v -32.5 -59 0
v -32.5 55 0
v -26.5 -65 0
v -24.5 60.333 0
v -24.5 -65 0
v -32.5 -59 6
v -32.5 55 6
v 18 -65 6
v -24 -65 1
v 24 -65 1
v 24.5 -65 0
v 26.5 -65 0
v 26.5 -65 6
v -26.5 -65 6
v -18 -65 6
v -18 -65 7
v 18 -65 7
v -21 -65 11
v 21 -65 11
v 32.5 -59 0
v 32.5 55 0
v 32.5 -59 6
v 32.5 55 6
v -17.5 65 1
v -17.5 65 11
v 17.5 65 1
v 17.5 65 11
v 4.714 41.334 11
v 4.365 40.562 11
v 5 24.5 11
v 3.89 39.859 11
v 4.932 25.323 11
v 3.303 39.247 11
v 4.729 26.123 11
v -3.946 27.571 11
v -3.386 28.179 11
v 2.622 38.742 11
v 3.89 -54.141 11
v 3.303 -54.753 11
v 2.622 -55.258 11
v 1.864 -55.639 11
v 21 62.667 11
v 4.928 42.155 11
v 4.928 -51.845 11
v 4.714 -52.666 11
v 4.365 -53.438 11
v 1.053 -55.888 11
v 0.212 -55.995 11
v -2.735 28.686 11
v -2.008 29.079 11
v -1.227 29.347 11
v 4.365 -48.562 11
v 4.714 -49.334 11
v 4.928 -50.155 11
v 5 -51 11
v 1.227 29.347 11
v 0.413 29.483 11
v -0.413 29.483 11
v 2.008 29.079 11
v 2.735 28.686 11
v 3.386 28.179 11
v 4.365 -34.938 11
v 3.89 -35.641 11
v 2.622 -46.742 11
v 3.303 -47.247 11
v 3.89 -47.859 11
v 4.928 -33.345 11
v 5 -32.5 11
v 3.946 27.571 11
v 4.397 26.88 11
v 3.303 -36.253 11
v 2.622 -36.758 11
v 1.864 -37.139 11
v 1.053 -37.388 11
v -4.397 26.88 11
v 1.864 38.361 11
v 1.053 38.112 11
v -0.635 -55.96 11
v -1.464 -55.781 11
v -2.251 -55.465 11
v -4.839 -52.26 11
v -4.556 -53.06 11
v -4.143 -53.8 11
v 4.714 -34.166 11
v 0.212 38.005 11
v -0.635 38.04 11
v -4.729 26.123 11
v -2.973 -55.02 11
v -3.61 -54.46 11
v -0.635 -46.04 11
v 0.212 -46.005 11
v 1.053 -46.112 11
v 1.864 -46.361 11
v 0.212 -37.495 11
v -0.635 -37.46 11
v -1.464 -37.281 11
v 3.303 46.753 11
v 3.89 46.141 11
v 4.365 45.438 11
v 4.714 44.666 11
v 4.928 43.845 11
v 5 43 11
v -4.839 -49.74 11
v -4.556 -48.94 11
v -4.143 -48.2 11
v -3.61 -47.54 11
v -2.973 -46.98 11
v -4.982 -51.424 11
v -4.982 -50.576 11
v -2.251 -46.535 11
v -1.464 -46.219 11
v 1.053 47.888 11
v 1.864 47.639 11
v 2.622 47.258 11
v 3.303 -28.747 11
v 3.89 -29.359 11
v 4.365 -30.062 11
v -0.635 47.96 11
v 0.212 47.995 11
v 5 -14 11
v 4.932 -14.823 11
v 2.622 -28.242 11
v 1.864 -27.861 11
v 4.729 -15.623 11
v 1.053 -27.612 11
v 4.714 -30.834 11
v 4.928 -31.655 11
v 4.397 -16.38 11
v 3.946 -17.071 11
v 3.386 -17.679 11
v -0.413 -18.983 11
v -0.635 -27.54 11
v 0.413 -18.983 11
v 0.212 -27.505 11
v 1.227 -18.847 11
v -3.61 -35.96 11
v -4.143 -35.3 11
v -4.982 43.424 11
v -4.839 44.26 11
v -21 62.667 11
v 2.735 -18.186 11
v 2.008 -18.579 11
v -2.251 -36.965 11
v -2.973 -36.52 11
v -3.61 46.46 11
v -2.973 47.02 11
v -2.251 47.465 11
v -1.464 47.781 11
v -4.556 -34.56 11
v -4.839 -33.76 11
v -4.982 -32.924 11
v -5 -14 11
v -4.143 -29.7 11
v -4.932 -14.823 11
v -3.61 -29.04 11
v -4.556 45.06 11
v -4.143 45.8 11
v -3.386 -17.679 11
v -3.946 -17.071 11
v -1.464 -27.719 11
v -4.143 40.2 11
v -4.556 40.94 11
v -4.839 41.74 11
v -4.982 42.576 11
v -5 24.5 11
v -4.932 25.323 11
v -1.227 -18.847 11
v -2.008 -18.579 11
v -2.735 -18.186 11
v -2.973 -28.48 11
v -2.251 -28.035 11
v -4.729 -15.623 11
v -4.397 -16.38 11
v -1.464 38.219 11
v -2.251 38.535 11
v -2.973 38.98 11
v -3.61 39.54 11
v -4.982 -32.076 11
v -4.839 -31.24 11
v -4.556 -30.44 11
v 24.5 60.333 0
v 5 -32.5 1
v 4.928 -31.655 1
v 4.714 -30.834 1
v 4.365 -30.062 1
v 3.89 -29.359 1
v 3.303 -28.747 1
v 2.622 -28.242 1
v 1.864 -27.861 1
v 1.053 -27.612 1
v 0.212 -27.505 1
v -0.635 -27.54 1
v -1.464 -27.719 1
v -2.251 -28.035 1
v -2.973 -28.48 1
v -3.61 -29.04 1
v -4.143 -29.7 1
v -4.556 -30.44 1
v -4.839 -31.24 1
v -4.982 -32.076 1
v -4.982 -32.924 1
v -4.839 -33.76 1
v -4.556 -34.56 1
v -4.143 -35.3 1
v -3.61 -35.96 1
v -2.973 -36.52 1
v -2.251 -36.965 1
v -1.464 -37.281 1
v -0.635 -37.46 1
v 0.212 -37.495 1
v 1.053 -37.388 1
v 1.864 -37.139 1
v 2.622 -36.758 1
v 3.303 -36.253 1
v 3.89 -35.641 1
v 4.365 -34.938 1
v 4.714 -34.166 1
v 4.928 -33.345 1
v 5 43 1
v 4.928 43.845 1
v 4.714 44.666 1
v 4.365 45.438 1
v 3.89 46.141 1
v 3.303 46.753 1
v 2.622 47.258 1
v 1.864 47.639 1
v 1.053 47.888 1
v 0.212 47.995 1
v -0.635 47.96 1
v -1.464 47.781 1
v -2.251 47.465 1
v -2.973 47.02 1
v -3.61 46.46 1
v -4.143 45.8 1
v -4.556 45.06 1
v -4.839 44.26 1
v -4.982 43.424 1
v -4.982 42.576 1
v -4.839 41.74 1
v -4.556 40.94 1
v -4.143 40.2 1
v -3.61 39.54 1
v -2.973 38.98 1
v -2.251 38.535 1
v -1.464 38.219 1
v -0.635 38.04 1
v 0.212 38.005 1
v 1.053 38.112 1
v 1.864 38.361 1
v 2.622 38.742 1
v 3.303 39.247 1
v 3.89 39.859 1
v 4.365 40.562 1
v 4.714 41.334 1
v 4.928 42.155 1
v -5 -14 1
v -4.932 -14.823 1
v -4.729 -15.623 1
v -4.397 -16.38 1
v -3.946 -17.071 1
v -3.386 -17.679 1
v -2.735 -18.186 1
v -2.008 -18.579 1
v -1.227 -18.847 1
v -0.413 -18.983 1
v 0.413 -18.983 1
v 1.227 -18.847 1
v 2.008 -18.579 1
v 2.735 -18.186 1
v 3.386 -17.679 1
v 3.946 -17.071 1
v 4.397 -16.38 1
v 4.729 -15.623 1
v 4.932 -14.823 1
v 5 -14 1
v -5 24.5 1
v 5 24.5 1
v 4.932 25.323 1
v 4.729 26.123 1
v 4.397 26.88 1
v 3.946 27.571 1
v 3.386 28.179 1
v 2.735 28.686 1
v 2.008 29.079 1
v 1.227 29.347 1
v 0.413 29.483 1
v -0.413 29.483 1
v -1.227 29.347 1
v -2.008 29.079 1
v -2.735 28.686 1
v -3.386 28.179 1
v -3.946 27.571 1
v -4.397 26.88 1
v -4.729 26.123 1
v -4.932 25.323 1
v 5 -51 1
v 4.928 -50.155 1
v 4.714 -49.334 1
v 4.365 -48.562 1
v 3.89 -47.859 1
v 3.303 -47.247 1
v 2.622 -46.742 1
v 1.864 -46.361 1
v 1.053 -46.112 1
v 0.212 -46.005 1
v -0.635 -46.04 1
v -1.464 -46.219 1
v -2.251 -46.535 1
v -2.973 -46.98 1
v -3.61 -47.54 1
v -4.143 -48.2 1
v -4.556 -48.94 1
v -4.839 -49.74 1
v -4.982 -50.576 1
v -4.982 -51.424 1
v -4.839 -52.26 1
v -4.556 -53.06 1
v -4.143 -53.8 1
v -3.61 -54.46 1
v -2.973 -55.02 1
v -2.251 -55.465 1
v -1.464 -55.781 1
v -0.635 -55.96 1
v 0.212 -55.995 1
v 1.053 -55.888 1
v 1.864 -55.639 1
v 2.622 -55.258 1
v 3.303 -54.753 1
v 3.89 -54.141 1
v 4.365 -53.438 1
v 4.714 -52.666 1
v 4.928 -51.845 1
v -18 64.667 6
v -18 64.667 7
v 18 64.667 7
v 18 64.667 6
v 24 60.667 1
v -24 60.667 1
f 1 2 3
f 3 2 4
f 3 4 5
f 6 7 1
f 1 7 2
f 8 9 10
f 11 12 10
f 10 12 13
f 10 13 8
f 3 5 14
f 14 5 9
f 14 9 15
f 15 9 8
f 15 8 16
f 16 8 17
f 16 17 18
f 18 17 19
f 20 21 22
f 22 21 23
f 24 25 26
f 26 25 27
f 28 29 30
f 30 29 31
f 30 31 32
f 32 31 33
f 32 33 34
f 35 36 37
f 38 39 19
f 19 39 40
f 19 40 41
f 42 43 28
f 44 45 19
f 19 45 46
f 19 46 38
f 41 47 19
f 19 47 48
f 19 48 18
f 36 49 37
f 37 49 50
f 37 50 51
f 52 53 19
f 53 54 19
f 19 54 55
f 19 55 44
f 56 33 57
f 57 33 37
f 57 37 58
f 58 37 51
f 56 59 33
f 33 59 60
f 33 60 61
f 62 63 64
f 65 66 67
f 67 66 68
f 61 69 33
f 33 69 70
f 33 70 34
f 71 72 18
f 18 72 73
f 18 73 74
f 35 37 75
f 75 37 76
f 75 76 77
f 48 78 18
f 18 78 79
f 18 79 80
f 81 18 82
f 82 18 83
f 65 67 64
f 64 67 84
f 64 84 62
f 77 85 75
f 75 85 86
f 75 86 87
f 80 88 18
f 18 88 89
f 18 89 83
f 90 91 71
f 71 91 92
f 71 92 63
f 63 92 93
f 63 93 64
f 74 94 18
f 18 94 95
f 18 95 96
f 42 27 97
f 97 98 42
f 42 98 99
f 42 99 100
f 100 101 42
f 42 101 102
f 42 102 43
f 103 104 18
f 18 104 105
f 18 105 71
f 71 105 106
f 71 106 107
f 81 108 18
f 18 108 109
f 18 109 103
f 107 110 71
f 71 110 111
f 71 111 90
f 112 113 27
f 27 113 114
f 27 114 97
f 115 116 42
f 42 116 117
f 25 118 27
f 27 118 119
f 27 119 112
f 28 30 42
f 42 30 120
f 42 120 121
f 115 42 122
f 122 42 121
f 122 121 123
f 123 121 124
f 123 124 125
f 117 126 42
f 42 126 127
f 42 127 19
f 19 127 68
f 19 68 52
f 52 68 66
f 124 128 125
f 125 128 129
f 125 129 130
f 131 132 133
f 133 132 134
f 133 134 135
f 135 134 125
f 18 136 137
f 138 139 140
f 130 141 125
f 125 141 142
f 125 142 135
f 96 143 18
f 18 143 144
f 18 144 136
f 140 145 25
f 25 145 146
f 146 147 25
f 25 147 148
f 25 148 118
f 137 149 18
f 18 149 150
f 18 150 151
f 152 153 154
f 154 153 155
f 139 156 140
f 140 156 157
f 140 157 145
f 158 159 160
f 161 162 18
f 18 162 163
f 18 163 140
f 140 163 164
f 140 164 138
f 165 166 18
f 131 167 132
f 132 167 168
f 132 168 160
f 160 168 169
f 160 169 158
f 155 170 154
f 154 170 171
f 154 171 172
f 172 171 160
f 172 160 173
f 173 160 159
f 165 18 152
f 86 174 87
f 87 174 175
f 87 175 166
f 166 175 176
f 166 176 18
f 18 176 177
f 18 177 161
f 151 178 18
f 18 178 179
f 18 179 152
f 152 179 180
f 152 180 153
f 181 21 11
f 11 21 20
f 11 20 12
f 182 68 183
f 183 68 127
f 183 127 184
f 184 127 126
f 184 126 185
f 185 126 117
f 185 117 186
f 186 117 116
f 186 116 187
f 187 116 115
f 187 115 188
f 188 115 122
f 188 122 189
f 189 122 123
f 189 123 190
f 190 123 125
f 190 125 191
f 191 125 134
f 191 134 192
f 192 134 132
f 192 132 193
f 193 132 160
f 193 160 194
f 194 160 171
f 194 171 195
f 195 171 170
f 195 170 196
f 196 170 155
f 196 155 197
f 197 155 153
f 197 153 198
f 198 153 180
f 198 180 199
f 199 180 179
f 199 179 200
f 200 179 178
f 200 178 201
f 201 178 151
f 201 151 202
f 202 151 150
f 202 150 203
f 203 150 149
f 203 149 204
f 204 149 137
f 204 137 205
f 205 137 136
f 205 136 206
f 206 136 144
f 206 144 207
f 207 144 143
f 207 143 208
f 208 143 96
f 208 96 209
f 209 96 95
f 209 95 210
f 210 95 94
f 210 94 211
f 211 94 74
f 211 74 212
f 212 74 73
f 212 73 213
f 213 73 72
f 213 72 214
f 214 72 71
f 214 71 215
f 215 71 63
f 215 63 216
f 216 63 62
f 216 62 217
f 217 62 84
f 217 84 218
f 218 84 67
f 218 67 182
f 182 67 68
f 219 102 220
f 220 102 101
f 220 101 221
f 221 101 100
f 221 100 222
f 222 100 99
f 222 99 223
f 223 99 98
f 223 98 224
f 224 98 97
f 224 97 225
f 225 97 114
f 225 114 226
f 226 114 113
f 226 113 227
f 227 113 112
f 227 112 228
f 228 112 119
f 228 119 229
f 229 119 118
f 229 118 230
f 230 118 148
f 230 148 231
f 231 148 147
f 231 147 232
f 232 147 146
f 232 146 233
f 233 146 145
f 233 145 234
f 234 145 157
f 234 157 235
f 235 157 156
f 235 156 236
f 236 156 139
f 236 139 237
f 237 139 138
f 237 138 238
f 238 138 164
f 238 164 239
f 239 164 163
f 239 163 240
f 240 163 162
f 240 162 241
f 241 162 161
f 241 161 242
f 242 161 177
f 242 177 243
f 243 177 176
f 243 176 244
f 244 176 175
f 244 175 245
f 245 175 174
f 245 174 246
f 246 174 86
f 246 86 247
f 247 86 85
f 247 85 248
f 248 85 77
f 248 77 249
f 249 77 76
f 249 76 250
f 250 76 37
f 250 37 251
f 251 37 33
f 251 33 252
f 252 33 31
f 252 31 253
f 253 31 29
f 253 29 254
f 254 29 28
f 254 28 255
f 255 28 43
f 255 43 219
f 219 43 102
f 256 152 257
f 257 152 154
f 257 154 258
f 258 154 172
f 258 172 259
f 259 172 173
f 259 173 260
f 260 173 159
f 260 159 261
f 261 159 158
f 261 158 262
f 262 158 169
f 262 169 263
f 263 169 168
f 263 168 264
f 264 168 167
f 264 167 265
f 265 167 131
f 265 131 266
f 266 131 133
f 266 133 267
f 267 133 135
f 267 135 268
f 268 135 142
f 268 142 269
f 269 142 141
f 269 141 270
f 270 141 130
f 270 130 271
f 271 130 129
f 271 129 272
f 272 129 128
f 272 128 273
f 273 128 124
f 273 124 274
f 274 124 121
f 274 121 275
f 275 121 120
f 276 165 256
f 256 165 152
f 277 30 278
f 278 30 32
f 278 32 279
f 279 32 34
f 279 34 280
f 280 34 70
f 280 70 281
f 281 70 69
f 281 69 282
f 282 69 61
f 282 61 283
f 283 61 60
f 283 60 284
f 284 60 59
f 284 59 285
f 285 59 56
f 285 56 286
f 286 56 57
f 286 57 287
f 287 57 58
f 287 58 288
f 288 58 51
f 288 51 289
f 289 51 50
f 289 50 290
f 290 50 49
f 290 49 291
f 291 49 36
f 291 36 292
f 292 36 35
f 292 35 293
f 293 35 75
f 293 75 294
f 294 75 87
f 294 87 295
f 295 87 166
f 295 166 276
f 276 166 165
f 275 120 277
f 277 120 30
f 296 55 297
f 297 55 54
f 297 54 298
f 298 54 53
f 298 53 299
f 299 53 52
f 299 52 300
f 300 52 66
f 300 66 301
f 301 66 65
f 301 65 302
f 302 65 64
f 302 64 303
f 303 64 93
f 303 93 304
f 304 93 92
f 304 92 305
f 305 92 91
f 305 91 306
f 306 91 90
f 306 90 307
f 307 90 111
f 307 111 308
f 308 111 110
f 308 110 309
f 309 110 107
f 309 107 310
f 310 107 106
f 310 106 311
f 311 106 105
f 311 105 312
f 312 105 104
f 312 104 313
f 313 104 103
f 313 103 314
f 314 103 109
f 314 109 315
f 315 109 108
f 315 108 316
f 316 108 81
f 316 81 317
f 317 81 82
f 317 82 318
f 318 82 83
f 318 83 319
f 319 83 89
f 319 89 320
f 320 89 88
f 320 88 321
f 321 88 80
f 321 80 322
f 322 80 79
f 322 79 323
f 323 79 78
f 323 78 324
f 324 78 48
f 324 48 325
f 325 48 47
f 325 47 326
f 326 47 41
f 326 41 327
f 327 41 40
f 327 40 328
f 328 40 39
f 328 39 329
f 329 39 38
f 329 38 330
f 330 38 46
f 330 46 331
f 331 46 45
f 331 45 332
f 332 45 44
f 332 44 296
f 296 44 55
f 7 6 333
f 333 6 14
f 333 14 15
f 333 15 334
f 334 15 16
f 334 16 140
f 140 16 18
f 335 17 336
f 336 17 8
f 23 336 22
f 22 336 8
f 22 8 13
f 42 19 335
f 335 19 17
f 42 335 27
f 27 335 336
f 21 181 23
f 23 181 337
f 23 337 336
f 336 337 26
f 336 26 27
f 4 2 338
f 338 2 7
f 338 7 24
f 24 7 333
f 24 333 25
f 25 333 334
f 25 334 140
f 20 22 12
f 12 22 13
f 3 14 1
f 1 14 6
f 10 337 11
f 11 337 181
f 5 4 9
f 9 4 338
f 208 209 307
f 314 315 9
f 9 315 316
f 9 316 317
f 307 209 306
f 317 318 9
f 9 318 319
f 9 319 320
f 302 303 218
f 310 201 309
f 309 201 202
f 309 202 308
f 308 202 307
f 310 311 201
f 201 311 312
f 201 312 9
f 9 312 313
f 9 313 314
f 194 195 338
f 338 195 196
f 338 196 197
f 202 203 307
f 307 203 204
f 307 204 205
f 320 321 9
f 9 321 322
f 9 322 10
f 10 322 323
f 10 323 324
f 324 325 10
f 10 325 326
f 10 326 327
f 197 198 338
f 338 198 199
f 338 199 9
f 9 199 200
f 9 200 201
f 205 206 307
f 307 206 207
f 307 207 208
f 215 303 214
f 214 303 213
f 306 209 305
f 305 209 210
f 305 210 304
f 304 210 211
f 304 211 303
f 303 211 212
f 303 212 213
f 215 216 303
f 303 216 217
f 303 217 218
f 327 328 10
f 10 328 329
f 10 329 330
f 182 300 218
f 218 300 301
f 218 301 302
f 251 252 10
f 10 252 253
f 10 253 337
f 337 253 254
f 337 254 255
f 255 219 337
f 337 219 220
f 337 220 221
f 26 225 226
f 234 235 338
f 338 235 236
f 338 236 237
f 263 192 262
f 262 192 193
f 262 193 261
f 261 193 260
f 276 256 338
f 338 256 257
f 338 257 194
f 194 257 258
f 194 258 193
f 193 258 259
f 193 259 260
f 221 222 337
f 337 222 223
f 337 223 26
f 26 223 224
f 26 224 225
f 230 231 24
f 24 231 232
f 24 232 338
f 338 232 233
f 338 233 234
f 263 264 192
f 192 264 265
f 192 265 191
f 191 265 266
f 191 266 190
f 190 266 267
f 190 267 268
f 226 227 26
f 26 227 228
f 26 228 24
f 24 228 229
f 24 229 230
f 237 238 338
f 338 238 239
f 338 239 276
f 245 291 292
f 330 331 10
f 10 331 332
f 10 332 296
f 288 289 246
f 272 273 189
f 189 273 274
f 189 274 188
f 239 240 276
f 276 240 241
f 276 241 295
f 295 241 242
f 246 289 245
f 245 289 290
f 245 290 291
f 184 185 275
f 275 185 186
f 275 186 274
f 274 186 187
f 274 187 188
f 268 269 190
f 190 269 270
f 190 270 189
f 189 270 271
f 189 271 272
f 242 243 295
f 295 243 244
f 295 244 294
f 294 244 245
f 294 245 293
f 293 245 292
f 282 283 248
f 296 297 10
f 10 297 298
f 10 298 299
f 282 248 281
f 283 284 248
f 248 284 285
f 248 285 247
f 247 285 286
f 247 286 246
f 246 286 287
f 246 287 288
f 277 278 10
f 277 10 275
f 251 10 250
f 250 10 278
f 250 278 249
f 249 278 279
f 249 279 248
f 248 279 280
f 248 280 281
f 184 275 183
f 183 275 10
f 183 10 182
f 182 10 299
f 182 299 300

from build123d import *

# Parameters (mm, degrees)
SKETCH1_W                = 65
SKETCH1_H                = 130
MAIN_BODY_EXTRUDE_DEPTH  = 11
SKETCH4_R                = 5
BOLT_HOLES_DEPTH         = 11
UNDERCARRIAGE_CUT_DEPTH  = 135
TOP_CORNER_CUTS_DEPTH    = 11
BOTTOM_CORNER_CUTS_DEPTH = 11
TOP_CUT_DEPTH            = 130


with BuildPart() as part:
    # Sketch1 → Main Body Extrude (new body)
    with BuildSketch(Plane.XY):
        Rectangle(SKETCH1_W, SKETCH1_H)
    extrude(amount=MAIN_BODY_EXTRUDE_DEPTH)

    # Sketch4 → Bolt Holes (cut)
    with BuildSketch(Plane.XY.offset(11)):
        with Locations((0, -51)):
            Circle(SKETCH4_R)
        with Locations((0, -32.5)):
            Circle(SKETCH4_R)
        with Locations((0, 43)):
            Circle(SKETCH4_R)
        with BuildLine():
            Line((-5, -14), (-5, 24.5))
            ThreePointArc((-5, 24.5), (0, 29.5), (5, 24.5))
            Line((5, 24.5), (5, -14))
            ThreePointArc((5, -14), (0, -19), (-5, -14))
        make_face()
    extrude(amount=-BOLT_HOLES_DEPTH, mode=Mode.SUBTRACT)

    # Sketch6 → Undercarriage Cut (cut)
    with BuildSketch(Plane(origin=(0, 65, 0), x_dir=(1, 0, 0), z_dir=(0, 1, 0))):
        Polygon((21, -11), (18, -7), (18, -6), (32.5, -6), (32.5, -11), align=None)
        Polygon((-32.5, -11), (-21, -11), (-18, -7), (-18, -6), (-32.5, -6), align=None)
    extrude(amount=-UNDERCARRIAGE_CUT_DEPTH, mode=Mode.SUBTRACT)

    # Sketch2 → Top Corner Cuts (cut)
    with BuildSketch(Plane.XY.offset(11)):
        Polygon((-32.5, 55), (-17.5, 65), (-32.5, 65), align=None)
        Polygon((17.5, 65), (32.5, 55), (32.5, 65), align=None)
    extrude(amount=-TOP_CORNER_CUTS_DEPTH, mode=Mode.SUBTRACT)

    # Sketch3 → Bottom Corner Cuts (cut)
    with BuildSketch(Plane.XY.offset(11)):
        Polygon((-26.5, -65), (-32.5, -59), (-32.5, -65), align=None)
        Polygon((26.5, -65), (32.5, -59), (32.5, -65), align=None)
    extrude(amount=-BOTTOM_CORNER_CUTS_DEPTH, mode=Mode.SUBTRACT)

    # Sketch7 → Top Cut (cut)
    with BuildSketch(Plane(origin=(0, -65, 0), x_dir=(-1, 0, 0), z_dir=(0, -1, 0))):
        Polygon((24.5, 0), (-24.5, 0), (-24, -1), (24, -1), align=None)
    extrude(amount=-TOP_CUT_DEPTH, mode=Mode.SUBTRACT)


solid = part.part
